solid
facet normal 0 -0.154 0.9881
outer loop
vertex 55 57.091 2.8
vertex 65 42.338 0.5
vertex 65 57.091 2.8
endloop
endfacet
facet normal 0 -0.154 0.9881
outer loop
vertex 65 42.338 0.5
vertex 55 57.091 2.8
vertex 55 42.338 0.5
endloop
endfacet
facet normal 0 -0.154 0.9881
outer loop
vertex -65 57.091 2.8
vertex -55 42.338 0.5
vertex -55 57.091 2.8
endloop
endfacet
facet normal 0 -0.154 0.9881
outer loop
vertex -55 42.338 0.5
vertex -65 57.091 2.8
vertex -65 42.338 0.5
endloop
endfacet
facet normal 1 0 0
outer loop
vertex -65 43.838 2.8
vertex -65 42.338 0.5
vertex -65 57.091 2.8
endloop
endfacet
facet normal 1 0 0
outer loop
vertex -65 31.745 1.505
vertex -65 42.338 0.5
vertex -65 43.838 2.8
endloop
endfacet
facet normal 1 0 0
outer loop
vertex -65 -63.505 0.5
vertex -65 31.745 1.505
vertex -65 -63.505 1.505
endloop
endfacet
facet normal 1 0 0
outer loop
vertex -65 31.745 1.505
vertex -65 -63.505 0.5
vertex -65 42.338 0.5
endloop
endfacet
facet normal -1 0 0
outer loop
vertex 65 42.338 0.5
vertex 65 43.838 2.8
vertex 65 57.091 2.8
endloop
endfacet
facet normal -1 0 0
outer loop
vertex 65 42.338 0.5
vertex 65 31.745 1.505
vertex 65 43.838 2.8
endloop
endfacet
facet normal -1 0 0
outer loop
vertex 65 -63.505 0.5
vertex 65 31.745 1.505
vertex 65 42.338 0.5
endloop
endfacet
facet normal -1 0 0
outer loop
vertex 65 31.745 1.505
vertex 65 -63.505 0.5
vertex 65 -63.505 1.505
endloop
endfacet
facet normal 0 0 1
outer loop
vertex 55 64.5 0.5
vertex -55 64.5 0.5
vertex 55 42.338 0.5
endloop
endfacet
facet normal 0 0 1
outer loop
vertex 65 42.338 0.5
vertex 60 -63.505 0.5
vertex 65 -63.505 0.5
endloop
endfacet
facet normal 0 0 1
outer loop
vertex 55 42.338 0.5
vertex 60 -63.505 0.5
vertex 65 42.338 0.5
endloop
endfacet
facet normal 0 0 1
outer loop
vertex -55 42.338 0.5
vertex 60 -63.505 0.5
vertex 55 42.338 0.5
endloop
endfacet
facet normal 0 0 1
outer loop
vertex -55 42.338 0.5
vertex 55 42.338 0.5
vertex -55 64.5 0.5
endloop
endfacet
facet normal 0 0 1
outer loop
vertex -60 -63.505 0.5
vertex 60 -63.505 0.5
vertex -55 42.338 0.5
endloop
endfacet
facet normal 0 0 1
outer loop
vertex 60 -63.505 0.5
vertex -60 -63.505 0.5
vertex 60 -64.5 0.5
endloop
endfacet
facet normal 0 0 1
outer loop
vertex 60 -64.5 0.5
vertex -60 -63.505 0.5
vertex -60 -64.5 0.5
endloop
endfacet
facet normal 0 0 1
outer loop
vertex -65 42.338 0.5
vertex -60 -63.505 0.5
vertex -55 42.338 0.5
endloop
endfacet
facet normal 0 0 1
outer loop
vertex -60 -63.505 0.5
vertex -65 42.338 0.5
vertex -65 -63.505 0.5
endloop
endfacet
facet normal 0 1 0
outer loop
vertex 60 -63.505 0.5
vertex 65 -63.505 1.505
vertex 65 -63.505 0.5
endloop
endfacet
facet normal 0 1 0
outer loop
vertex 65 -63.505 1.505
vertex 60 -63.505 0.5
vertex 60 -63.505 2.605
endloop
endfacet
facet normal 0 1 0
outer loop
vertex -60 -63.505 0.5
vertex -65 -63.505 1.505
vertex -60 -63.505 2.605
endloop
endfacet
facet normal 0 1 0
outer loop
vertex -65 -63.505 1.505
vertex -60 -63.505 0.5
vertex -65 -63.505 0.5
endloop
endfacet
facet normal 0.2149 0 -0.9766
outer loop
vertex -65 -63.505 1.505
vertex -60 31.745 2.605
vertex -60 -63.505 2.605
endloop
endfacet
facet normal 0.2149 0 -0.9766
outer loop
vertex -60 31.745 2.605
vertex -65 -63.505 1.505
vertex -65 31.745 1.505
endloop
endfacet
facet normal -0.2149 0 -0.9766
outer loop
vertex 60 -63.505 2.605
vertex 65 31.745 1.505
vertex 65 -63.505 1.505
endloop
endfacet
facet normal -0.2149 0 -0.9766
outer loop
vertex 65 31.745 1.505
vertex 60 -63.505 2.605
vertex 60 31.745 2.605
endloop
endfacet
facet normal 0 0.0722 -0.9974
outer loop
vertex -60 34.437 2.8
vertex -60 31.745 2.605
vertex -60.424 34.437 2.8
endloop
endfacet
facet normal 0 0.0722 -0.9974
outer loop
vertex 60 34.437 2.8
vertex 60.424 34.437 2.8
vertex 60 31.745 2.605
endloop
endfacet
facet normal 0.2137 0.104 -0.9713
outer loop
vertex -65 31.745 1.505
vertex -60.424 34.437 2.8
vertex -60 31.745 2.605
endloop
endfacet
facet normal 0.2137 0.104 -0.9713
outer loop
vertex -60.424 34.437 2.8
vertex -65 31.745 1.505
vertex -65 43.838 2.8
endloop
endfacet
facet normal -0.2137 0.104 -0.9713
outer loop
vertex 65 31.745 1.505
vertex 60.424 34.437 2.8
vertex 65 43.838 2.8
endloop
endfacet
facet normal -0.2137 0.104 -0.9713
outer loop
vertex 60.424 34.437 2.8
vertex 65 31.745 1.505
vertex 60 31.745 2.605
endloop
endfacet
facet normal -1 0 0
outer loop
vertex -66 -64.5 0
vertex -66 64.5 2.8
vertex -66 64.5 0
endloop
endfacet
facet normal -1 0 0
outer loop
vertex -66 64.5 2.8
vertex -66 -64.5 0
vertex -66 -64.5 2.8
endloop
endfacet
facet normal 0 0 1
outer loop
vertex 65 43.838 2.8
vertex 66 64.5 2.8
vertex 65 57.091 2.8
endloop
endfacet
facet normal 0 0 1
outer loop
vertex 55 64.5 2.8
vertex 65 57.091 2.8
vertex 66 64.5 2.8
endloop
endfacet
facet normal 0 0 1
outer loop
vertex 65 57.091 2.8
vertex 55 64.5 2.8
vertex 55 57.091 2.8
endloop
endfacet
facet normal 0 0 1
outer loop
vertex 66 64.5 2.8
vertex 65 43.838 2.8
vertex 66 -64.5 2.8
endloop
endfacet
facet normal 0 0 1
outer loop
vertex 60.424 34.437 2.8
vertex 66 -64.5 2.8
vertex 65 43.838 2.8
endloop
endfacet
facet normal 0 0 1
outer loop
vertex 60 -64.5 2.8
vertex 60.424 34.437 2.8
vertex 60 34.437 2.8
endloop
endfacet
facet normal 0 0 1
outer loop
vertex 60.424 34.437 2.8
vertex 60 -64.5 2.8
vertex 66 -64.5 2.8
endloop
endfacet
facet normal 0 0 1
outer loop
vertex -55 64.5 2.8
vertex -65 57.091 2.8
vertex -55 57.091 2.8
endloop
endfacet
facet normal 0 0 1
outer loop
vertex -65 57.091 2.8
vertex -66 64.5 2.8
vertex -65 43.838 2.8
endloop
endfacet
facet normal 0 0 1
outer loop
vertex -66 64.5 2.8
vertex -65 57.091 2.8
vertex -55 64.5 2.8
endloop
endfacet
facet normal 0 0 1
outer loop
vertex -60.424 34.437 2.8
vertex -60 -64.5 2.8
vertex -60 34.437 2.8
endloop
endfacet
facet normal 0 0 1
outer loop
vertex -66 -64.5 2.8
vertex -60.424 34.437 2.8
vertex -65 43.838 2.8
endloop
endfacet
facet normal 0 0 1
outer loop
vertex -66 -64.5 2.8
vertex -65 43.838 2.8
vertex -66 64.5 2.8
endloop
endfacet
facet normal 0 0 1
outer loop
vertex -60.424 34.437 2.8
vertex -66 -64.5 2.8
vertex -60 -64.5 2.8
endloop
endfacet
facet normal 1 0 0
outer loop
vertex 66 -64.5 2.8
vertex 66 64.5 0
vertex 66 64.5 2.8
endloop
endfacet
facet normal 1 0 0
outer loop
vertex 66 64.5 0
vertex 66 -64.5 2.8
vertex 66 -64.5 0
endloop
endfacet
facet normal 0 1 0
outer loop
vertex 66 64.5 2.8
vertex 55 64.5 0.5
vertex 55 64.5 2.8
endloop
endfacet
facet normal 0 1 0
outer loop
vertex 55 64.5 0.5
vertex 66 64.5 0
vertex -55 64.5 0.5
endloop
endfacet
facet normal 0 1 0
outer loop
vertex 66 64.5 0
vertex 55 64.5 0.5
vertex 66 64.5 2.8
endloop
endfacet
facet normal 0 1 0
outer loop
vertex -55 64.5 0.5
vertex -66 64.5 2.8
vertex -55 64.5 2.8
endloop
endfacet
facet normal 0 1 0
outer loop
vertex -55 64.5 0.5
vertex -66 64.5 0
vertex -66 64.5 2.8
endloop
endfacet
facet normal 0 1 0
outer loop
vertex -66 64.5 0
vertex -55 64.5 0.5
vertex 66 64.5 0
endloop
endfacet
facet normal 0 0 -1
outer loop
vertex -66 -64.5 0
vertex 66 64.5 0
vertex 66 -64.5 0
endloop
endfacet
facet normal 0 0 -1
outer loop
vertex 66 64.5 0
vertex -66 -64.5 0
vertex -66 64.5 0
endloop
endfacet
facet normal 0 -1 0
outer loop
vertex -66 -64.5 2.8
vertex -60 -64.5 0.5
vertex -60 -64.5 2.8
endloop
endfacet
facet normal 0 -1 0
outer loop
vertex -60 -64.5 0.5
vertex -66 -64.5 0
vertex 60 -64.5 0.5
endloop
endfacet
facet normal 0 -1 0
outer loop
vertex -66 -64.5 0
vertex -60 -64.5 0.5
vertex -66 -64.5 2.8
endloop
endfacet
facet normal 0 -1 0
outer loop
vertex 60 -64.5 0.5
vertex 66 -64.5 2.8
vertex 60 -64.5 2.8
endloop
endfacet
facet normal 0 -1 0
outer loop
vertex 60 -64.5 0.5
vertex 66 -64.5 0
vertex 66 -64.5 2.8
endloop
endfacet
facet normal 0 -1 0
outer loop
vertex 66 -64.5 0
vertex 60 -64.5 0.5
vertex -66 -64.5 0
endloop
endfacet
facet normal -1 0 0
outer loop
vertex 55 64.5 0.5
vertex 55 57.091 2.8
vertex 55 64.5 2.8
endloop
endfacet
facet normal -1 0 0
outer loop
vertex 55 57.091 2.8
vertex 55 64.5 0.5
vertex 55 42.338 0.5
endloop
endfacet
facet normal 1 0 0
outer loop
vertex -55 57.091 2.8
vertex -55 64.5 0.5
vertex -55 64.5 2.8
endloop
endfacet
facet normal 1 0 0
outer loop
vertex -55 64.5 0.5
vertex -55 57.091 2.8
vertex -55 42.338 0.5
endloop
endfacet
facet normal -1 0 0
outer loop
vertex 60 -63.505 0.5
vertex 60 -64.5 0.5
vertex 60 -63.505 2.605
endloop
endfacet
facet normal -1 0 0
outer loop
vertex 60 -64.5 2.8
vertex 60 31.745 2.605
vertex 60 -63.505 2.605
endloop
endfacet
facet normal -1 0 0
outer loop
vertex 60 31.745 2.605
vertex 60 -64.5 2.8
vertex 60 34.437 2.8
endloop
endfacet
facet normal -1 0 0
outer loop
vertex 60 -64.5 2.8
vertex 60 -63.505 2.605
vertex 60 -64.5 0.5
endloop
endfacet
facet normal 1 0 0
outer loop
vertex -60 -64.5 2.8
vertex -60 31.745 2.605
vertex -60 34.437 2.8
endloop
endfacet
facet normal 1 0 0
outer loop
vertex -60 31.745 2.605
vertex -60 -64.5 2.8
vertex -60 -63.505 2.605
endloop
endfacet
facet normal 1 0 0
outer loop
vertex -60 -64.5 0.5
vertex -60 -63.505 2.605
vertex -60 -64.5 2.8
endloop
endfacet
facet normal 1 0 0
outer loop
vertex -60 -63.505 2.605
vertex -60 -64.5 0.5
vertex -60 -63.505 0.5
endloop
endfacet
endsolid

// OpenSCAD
// Wall Mounted Single Card Holder For 13cm square photos for gameboy gallery (Derived from business card wall mount source)
// By Brian Khuu 2022-04-10
// Note: Adjusted to have enough space for command strips (2cmm on each side)

print_layer_height = 0.2;

// Businesscard
// Default values based on https://www.mbe.com.au/what-is-the-standard-business-card-size-in-australia/
businesscard_width = 130; // 127mm plus some tolerance (+3 tolerance)
businesscard_height = 127; // 127mm
businesscard_thickness = 1.0;

// Holder
wall_spacing = 2;
wall_card_grip = 10;
wall_x_count = 1; //2
wall_y_count = 1; //3

// Calc
wall_base = print_layer_height*2+0.1;
wall_top = print_layer_height*6+0.1;
wall_height = wall_base + businesscard_thickness + wall_top;

module cardholder(reducePlastic=false)
{
    if (0)
    translate([0,0,wall_base+businesscard_thickness])
        rotate([2,0,0])
        %cube([130, 130, 0.1], center = true);

    difference()
    {
        translate([0,0,wall_height/2])
            cube([businesscard_width+wall_spacing, businesscard_height+wall_spacing, wall_height], center = true);

        // Card Slide
        translate([0,0,wall_base])
        translate([0,0,businesscard_thickness/2])
        {
            // Upper
            hull()
            {
                translate([0,businesscard_height/2,businesscard_thickness*3 + wall_top])
                    cube([businesscard_width, 0.01, businesscard_thickness*3], center = true);
                translate([0,businesscard_height/3,0])
                    cube([businesscard_width, 0.01, businesscard_thickness], center = true);
            }
            // Lower
            hull()
            {
                translate([0,businesscard_height/3,0])
                    cube([businesscard_width, 0.01, businesscard_thickness], center = true);
                translate([0,-businesscard_height/2,0])
                    cube([businesscard_width, 0.01, businesscard_thickness], center = true);
            }
        }

        // Grip
        if (0)
        translate([0,0,wall_height/2-0.01])
            hull()
            {
                translate([0,businesscard_height/2+1,0])
                cube([businesscard_width-wall_card_grip*2, 0.01, wall_height], center = true);

                translate([0,businesscard_height/2-5,0])
                cube([businesscard_width-wall_card_grip*3, 0.01, wall_height], center = true);
            }
        translate([0,0,wall_height/2+wall_base])
            hull()
            {
                translate([0,businesscard_height,0])
                cube([businesscard_width-wall_card_grip*2, 0.01, wall_height], center = true);

                translate([0,businesscard_height/3,0])
                cube([businesscard_width-wall_card_grip*2, 0.01, wall_height], center = true);
            }
        translate([0,0,wall_height/2+wall_base])
            hull()
            {
                translate([0,businesscard_height/3,0])
                cube([businesscard_width-wall_card_grip, 0.01, wall_height], center = true);
                translate([0,-businesscard_height,0])
                cube([businesscard_width-wall_card_grip, 0.01, wall_height], center = true);
            }

        // Reduce Plastic
        if (reducePlastic)
        translate([0,0,wall_base+businesscard_thickness/2+0.5])
        {
            //cube([businesscard_width-40,businesscard_height-30, wall_height+1], center=true);
            cube([businesscard_width-40,businesscard_height-40, wall_height+1], center=true);
        }
        
        
        // Slope
        translate([0,0,wall_base+businesscard_thickness])
        union()
        {
            // Lower
            hull()
            {
                translate([0,0,wall_top-print_layer_height])
                    hull()
                    {
                        translate([0,businesscard_height/4,0])
                            cube([businesscard_width-wall_card_grip, 0.01, 0.01], center = true);
                        translate([0,-businesscard_height/2,0])
                            cube([businesscard_width-wall_card_grip, 0.01, 0.01], center = true);
                    }
                hull()
                {
                    translate([0,businesscard_height/4,0])
                        cube([businesscard_width, 0.01, 0.01], center = true);
                    translate([0,-businesscard_height/2,0])
                        cube([businesscard_width, 0.01, 0.01], center = true);
                }
            }
            
            // Upper
            hull()
            {
                translate([0,0,wall_top-print_layer_height])
                hull()
                {
                    translate([0,businesscard_height/2,businesscard_thickness + wall_top])
                        cube([businesscard_width, 0.01, 0.01], center = true);
                    translate([0,businesscard_height/4,0])
                        cube([businesscard_width-wall_card_grip, 0.01, 0.01], center = true);
                }
                hull()
                {
                    translate([0,businesscard_height/2,businesscard_thickness + wall_top])
                        cube([businesscard_width, 0.01, 0.01], center = true);
                    translate([0,businesscard_height/3,0])
                        cube([businesscard_width, 0.01, 0.01], center = true);
                    translate([0,businesscard_height/4,0])
                        cube([businesscard_width, 0.01, 0.01], center = true);
                }
            }
        }
    }
}

if (wall_x_count == 1 && wall_y_count == 1)
{
    cardholder(false);
}
else
{
    for (x = [1: 1 : wall_x_count])
        for (y = [1 : 1 : wall_y_count])
           translate([x*(businesscard_width+wall_spacing), y*(businesscard_height+wall_spacing), 0])
                cardholder(false);
}
